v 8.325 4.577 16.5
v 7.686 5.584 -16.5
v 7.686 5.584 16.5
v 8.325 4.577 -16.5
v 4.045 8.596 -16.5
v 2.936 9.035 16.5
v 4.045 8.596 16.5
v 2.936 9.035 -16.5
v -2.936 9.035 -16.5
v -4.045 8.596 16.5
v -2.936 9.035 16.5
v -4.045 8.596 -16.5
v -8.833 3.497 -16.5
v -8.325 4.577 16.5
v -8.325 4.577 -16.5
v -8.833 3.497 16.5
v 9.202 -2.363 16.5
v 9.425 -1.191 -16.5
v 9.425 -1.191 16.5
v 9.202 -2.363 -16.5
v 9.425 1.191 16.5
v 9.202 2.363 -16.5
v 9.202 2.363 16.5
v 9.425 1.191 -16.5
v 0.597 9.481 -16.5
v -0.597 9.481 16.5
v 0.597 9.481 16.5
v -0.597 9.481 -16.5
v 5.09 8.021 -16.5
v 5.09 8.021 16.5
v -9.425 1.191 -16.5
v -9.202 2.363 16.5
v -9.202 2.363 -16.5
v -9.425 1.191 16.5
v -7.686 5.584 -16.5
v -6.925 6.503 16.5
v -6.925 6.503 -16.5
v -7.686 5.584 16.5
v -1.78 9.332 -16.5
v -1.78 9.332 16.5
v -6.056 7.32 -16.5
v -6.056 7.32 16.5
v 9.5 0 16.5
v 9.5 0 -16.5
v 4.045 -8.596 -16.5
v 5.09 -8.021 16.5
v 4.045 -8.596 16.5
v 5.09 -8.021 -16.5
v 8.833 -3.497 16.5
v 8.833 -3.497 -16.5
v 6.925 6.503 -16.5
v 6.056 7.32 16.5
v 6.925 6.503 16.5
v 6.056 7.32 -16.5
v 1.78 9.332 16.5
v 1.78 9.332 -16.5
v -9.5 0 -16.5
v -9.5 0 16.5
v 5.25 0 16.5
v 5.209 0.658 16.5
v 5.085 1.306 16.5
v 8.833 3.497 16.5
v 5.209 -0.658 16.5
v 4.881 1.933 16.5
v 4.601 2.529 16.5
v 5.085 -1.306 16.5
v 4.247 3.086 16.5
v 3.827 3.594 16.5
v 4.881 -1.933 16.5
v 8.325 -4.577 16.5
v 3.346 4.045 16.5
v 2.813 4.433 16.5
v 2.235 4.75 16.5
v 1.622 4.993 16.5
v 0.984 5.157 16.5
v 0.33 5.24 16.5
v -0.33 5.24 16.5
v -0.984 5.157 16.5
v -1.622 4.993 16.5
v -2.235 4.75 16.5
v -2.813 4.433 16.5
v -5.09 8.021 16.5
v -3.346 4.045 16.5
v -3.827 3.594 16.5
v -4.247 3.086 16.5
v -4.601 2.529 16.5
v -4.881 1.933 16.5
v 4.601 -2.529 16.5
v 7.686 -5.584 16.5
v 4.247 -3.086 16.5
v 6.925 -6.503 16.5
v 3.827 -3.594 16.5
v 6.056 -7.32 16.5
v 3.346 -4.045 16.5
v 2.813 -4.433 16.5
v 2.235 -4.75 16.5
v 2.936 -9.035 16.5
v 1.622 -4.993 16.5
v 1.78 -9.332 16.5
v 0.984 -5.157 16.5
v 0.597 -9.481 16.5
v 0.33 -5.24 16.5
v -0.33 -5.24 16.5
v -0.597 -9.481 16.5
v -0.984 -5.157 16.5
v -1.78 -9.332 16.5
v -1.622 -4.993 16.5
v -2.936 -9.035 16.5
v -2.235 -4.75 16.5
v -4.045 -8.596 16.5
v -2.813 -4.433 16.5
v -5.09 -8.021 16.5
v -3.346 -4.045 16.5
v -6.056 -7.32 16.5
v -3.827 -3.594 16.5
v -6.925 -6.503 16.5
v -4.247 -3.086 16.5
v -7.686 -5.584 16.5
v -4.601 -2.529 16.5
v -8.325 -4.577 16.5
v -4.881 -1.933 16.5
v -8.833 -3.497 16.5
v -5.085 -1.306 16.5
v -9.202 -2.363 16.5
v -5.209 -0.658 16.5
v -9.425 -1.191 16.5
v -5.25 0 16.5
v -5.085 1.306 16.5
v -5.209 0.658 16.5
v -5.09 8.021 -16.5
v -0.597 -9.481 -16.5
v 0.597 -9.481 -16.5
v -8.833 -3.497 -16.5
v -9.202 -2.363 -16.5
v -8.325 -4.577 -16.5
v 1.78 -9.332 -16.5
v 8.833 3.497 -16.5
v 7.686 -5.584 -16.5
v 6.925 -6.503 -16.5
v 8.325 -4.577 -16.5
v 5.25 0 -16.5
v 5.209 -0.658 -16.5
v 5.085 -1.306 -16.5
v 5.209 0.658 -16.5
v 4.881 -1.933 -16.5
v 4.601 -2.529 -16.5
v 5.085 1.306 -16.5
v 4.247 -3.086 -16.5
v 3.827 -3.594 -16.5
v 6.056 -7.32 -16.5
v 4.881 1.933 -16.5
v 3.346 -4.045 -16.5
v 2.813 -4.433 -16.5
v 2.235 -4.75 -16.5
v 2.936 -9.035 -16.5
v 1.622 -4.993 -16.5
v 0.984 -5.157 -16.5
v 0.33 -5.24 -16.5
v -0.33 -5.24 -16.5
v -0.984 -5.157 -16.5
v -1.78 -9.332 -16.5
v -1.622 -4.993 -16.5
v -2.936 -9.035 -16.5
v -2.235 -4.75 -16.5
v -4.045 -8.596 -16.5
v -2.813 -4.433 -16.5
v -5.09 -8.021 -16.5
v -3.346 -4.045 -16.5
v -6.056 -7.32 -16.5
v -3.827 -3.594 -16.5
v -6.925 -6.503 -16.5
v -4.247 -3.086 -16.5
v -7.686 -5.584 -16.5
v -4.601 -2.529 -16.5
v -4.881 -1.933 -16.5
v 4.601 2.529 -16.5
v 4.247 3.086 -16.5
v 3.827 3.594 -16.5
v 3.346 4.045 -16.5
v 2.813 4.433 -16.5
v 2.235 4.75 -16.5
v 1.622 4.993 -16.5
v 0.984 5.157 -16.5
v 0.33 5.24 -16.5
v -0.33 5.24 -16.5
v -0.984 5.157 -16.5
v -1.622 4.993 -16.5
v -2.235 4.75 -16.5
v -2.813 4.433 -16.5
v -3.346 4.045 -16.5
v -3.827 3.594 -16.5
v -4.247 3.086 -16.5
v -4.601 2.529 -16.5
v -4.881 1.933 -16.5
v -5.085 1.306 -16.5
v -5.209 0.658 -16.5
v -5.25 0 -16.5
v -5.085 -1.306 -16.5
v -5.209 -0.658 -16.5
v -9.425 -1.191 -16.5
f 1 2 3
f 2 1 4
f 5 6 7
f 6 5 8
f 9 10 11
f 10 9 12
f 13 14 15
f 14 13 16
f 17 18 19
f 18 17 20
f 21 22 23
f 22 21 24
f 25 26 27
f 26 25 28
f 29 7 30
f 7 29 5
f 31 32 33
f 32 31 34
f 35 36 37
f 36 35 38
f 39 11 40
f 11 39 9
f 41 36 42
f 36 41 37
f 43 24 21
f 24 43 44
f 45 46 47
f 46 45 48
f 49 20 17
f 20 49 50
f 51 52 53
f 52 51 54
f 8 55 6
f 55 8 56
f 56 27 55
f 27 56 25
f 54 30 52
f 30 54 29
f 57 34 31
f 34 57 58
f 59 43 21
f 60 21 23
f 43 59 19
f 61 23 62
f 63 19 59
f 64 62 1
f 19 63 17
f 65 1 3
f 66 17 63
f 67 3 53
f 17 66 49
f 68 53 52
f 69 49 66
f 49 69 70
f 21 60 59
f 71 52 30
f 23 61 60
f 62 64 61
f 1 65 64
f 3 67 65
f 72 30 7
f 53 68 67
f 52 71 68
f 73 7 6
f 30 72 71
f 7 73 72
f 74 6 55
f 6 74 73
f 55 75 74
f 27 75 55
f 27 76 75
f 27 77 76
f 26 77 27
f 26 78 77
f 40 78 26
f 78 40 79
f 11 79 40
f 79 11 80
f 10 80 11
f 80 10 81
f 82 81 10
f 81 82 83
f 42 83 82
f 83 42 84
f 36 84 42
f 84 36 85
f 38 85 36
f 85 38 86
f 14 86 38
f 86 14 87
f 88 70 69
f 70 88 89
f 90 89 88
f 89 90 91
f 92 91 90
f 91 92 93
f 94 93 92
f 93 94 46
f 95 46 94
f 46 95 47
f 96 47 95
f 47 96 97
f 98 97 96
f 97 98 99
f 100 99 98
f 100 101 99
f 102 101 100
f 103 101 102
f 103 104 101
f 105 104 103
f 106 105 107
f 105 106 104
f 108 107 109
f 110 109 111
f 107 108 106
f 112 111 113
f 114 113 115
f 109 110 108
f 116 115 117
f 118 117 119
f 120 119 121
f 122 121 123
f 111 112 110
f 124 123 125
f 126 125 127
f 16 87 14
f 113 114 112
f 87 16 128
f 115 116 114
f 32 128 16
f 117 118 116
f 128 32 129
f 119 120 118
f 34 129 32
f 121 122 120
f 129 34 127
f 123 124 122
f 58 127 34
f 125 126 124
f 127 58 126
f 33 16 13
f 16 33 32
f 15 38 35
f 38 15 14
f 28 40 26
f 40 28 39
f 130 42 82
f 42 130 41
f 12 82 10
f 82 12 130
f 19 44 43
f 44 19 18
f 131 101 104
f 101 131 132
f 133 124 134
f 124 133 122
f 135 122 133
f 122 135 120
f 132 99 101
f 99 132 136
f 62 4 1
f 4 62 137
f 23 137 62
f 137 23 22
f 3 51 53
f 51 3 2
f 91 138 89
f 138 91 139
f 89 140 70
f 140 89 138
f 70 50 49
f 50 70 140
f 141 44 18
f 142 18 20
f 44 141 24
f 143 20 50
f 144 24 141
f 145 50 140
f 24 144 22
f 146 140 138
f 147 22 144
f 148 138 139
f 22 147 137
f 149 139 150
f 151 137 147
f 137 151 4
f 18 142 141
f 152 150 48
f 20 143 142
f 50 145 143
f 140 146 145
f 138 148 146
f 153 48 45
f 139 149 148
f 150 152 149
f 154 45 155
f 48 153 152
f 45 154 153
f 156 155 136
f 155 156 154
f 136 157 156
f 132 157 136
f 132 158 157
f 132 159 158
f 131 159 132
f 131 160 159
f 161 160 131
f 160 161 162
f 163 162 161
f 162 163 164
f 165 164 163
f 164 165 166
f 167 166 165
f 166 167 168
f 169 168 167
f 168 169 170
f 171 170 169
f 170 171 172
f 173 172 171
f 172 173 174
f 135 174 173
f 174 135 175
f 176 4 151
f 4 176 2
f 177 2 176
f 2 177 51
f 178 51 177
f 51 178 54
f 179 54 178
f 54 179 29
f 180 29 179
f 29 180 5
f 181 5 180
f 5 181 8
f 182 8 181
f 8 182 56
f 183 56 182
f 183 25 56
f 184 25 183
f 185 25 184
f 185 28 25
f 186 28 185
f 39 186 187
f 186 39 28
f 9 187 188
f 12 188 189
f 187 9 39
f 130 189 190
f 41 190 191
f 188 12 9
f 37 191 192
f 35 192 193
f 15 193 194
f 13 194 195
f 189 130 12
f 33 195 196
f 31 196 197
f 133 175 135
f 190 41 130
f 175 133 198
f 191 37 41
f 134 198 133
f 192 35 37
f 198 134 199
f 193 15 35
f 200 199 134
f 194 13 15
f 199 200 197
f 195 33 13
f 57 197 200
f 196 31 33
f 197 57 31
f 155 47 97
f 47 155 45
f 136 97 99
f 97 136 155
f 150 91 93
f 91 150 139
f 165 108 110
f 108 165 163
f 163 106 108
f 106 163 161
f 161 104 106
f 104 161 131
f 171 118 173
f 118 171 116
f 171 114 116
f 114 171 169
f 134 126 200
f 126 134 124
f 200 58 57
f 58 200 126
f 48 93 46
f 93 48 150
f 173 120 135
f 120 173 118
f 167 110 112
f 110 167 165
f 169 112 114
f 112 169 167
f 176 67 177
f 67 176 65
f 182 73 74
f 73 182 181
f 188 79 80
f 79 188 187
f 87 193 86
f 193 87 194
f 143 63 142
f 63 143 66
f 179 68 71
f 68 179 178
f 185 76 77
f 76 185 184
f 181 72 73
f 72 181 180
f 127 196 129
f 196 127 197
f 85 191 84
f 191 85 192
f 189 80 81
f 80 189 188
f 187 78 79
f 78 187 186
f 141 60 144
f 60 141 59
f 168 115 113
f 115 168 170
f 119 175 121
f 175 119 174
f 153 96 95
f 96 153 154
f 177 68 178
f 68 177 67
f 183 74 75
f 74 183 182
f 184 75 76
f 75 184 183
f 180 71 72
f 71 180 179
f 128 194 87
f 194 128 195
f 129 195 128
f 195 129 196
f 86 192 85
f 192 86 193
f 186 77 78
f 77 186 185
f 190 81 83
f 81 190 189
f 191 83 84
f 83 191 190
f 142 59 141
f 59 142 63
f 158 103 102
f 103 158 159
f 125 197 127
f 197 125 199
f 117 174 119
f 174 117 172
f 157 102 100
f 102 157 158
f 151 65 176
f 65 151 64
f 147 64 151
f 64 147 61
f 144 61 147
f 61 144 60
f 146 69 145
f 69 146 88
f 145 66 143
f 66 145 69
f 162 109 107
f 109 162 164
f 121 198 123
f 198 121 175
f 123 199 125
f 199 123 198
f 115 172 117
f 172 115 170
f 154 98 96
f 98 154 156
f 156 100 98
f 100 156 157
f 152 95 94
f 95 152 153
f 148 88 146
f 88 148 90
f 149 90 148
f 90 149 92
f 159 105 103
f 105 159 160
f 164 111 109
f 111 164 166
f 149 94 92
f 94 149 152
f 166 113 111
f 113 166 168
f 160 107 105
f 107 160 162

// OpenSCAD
$fn = 50;


difference() {
	union() {
		translate(v = [0, 0, -16.5000000000]) {
			cylinder(h = 33, r = 9.5000000000);
		}
	}
	union() {
		translate(v = [0, 0, -100.0000000000]) {
			cylinder(h = 200, r = 5.2500000000);
		}
	}
}
